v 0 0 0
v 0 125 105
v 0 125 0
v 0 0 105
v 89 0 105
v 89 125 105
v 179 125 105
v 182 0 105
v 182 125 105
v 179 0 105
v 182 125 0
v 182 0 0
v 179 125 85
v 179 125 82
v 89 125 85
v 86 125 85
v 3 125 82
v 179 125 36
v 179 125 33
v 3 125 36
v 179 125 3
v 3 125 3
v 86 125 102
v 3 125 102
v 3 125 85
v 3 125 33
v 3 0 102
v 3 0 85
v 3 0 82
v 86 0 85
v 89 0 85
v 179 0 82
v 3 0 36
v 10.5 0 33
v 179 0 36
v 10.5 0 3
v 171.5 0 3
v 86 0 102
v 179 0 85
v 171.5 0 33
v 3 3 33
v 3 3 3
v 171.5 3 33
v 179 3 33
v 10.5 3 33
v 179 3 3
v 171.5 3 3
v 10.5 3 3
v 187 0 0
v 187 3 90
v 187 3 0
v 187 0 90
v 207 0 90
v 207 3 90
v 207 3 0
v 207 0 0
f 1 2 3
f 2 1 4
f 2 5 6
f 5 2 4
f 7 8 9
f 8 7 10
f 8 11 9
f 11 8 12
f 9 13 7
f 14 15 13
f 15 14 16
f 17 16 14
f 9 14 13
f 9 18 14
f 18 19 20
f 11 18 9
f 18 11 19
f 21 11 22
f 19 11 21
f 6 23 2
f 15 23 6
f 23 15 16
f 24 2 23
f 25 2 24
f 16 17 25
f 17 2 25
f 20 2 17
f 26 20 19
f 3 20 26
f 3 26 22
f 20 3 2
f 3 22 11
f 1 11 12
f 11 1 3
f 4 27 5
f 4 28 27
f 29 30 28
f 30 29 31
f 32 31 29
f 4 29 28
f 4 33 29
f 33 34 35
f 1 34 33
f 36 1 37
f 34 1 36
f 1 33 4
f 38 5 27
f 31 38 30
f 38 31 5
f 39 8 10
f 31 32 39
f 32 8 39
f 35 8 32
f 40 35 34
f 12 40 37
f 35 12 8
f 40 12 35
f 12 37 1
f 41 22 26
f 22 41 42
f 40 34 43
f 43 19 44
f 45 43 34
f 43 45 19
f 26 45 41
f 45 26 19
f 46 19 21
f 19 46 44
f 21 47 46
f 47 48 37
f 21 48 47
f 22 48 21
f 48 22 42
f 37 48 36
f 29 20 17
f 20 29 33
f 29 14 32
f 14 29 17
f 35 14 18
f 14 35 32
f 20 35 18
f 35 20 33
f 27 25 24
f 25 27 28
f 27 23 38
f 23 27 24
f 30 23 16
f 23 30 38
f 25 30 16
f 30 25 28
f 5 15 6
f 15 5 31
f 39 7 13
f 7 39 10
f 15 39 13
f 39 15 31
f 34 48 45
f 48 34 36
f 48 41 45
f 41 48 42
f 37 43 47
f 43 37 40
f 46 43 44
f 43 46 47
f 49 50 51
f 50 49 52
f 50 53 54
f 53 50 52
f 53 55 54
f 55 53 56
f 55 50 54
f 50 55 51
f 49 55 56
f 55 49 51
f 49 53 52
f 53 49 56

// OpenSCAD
w1 = 176;
h1 = 30;
d1 = 73;

w2 = 176;
h2 = 46;
d2 = 125;

w3 = 83;
h3 = 17;
d3 = 124;

wall = 3;

totW = max(w1, w2, w3) + 2 * wall;
totH = h1 + h2 + h3 + 4 * wall;
totD = max(d1, d2, d3);

union() {
    difference() {
        cube([totW, totD, totH]);
        translate([wall, -1, wall])
            cube([w1, totD + 2, h1]);
        translate([wall, -1, h1 + 2 * wall])
            cube([w2, totD + 2, h2]);
        translate([wall, -1, h1 + h2 + 3 * wall])
            cube([w3, totD + 2, h3]);
        translate([w3 + 2 * wall, -1, h1 + h2 + 3 * wall])
            cube([totW - w3 - 3 * wall, totD +2, 90]);
    }
    translate([wall, 0, wall])
        cube([7.5, wall, h1]);
    translate([wall + w1 - 7.5, 0, wall])
        cube([7.5, wall, h1]);
}

translate([totW + 5, 0, 0])
  cube([h3 + wall, wall, totW - w3 - 3 * wall]);
